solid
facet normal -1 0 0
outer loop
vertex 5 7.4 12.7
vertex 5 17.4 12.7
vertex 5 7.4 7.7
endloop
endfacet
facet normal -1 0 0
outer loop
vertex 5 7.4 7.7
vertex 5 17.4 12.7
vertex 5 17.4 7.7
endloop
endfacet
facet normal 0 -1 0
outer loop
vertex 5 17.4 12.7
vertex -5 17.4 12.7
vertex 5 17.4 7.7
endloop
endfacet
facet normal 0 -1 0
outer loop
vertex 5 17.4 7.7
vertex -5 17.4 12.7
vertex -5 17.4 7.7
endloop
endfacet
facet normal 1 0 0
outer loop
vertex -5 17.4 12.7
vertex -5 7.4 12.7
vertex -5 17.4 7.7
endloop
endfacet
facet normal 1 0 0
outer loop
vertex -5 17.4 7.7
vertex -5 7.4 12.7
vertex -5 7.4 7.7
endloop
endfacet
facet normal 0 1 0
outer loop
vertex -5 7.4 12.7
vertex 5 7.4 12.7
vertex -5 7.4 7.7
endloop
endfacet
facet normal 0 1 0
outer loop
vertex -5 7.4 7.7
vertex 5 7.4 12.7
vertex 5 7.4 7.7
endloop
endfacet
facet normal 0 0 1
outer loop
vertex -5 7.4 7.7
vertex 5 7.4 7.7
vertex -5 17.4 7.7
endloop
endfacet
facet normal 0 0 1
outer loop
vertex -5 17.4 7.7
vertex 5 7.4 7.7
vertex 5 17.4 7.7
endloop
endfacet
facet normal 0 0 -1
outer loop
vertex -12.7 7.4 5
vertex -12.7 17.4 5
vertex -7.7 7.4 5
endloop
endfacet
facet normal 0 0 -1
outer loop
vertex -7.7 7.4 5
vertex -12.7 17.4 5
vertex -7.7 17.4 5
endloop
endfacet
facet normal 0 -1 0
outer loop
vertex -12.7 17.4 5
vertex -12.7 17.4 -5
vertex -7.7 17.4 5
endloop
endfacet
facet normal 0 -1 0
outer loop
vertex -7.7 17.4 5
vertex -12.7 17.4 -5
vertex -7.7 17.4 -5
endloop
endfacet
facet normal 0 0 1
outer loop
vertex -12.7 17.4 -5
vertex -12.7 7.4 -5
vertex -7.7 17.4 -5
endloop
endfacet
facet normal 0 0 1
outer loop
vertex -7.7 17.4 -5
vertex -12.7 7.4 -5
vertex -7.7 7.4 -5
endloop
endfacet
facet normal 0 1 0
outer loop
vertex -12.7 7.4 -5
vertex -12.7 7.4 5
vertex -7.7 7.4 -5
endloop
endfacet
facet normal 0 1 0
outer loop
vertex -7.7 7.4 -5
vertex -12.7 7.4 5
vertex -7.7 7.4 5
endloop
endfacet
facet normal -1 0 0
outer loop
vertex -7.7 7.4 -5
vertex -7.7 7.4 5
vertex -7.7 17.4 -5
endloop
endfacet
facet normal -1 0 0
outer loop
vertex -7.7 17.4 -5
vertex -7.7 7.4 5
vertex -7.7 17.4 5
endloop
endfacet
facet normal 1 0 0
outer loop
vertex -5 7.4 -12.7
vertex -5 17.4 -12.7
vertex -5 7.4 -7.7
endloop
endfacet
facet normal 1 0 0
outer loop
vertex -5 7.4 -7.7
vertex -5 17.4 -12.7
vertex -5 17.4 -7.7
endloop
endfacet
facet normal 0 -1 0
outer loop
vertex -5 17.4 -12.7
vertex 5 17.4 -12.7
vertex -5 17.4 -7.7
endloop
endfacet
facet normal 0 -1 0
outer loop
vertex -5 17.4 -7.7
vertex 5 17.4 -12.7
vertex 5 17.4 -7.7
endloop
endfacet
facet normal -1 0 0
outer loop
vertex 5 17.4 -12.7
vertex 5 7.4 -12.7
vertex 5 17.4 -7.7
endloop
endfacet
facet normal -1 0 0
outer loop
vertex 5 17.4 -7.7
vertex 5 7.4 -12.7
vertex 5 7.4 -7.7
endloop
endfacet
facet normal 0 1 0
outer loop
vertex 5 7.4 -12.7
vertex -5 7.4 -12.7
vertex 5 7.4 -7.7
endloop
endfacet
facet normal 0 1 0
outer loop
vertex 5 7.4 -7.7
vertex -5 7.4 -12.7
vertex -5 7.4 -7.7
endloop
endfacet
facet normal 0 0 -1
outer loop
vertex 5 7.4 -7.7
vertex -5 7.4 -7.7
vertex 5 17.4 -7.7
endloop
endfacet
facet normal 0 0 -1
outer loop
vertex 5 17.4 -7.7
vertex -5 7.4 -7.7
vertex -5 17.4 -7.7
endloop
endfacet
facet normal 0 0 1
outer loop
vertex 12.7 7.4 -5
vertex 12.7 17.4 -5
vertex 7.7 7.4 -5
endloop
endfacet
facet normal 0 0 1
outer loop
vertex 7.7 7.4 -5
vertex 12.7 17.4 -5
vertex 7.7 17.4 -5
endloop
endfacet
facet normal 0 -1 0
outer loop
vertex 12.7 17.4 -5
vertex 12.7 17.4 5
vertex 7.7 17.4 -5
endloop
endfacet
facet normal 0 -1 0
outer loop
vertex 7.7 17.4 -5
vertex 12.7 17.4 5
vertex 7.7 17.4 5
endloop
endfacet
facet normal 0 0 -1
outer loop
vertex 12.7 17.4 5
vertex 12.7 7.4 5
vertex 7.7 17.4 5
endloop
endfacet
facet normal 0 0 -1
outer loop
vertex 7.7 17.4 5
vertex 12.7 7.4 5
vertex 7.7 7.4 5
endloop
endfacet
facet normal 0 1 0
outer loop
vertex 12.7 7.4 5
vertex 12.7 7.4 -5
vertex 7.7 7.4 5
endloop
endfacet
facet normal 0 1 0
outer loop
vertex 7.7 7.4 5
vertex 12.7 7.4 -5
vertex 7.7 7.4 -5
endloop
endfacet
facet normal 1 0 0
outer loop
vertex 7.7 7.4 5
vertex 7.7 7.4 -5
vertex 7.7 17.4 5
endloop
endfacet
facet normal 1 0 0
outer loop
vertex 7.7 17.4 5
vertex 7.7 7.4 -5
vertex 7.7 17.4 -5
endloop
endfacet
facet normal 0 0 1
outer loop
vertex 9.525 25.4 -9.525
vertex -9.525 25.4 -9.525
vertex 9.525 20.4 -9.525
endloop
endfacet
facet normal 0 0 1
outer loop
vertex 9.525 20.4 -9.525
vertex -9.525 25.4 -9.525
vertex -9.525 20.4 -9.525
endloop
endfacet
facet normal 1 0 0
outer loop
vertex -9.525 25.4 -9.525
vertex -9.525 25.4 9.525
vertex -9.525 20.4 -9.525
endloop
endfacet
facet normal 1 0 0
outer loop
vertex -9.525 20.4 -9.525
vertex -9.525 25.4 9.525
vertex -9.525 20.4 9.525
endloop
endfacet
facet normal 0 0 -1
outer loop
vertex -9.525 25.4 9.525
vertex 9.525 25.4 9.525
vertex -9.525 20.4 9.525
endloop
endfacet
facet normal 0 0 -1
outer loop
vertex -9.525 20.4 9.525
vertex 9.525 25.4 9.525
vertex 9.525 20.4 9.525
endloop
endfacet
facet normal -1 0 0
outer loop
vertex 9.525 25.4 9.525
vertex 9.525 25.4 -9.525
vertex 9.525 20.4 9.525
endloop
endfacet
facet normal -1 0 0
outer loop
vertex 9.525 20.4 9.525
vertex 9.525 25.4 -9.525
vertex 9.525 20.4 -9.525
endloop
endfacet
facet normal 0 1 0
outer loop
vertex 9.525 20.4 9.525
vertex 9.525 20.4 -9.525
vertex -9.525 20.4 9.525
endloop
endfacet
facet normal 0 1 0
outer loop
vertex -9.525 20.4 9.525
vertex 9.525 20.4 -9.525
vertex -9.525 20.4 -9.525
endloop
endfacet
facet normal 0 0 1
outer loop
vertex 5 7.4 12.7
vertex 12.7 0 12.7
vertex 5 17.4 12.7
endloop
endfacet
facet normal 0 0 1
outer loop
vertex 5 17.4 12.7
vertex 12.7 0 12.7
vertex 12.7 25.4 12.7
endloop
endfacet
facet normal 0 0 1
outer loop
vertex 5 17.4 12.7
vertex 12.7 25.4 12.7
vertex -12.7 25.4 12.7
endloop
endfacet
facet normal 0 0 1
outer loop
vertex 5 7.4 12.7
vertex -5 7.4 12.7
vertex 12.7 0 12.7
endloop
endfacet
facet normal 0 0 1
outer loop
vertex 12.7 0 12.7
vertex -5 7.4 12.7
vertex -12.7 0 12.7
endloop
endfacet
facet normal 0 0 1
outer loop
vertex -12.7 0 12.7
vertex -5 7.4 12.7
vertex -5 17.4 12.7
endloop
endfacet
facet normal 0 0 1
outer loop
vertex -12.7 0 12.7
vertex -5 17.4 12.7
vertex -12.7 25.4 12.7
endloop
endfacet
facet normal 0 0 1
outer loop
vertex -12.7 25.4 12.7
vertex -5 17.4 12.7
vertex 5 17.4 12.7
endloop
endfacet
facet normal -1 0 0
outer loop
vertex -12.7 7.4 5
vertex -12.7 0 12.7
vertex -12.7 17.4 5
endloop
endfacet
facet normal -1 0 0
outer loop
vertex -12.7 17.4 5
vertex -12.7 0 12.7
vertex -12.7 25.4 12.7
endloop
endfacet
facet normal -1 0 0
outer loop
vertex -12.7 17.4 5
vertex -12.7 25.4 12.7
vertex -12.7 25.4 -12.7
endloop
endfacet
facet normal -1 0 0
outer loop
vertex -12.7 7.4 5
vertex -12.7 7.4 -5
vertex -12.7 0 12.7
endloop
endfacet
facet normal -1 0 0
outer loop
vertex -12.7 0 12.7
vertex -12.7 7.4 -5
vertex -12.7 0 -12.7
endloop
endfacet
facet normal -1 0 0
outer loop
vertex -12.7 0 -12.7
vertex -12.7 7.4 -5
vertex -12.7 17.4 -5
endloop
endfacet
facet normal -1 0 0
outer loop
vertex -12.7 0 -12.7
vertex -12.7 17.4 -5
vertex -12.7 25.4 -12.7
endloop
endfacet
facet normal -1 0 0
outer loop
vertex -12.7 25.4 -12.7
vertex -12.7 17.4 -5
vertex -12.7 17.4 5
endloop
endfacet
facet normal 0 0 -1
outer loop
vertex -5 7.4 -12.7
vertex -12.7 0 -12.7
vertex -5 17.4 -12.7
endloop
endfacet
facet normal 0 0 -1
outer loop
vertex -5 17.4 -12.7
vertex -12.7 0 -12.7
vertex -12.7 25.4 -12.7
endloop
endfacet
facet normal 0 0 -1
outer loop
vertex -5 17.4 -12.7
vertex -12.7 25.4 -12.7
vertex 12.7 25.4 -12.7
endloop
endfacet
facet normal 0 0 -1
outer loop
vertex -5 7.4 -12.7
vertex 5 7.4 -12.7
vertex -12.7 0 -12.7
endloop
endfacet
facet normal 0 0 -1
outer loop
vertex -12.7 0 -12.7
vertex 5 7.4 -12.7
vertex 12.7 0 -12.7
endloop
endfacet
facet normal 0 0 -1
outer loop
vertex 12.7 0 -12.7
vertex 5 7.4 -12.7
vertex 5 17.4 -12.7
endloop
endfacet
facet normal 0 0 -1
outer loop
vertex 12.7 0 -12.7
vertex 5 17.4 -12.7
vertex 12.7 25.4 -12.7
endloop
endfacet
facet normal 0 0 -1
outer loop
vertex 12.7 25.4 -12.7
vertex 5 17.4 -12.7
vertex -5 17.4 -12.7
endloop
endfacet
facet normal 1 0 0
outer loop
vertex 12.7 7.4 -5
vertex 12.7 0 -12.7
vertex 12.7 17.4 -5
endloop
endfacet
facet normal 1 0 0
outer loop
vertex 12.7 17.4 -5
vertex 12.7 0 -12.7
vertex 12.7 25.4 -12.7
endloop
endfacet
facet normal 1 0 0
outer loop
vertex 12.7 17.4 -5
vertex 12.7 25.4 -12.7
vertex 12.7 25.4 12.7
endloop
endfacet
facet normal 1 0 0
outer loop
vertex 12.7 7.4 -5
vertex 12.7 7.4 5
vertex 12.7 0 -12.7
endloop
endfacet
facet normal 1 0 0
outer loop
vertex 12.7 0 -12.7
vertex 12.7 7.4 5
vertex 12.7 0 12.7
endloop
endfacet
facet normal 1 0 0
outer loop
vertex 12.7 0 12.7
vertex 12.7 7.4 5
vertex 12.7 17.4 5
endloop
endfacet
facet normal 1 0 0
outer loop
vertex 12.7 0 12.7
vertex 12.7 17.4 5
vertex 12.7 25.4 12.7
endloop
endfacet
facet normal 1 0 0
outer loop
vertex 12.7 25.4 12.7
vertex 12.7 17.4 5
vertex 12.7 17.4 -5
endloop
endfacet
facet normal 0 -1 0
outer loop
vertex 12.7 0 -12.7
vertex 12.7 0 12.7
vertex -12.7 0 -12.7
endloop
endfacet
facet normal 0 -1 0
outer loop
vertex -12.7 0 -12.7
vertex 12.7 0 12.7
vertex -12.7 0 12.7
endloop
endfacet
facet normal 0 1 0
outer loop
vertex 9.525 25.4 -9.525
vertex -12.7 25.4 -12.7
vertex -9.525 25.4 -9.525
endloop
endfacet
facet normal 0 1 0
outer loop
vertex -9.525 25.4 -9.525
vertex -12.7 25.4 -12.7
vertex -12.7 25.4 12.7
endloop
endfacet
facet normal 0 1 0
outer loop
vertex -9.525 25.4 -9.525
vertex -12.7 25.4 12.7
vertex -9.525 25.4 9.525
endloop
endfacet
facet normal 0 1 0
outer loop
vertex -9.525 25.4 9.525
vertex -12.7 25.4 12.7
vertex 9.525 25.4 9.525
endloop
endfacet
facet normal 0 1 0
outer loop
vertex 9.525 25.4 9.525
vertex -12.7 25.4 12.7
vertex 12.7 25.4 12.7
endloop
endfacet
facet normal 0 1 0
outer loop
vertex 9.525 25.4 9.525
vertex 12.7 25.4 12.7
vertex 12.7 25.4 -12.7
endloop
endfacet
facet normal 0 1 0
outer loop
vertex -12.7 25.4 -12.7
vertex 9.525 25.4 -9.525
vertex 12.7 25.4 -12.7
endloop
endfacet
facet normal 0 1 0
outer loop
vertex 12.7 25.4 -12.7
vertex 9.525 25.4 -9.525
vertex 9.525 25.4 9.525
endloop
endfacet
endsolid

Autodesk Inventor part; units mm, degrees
ref_plane "YZ Plane" through (0, 0, 0) normal (1, 0, 0) x (0, 1, 0)
ref_plane "XZ Plane" through (0, 0, 0) normal (0, 1, 0) x (-1, 0, 0)
ref_plane "XY Plane" through (0, 0, 0) normal (0, 0, 1) x (1, 0, 0)
sketch "Sketch1" plane through (0, 0, 0) normal (0, 1, 0) x (-1, 0, 0)
  line L0 (-12.7, -12.7) -> (-12.7, 12.7)
  line L1 (-12.7, 12.7) -> (12.7, 12.7)
  line L2 (12.7, 12.7) -> (12.7, -12.7)
  line L3 (12.7, -12.7) -> (-12.7, -12.7)
  point P0 (0, 0)
  point P1 (0, 0)
  dimension "d0" = 25.4
extrude "Extrusion1" add sketch "Sketch1" along normal blind 25.4
sketch "Sketch2" plane through (0, 25.4, 0) normal (0, 1, 0) x (1, 0, 0)
  line L0 (9.525, 9.525) -> (9.525, -9.525)
  line L1 (9.525, -9.525) -> (-9.525, -9.525)
  line L2 (-9.525, -9.525) -> (-9.525, 9.525)
  line L3 (-9.525, 9.525) -> (9.525, 9.525)
  point P0 (0, 0)
  point P1 (0, 0)
  dimension "d3" = 19.05
extrude "Extrusion2" cut sketch "Sketch2" against normal blind 5
sketch "Sketch3" plane through (12.7, 0, 12.7) normal (1, 0, 0) x (0, 0, -1)
  line L0 (22.225, 20.4) -> (3.175, 20.4) projected
  line L1 (17.7, 7.4) -> (7.7, 7.4)
  line L2 (7.7, 7.4) -> (7.7, 17.4)
  line L3 (7.7, 17.4) -> (17.7, 17.4)
  line L4 (17.7, 17.4) -> (17.7, 7.4)
  point P0 (12.7, 0)
  point P1 (12.7, 12.4)
  dimension "d6" = 10
extrude "Extrusion3" cut sketch "Sketch3" against normal blind 5
pattern_circular "Circular Pattern1" count 4 over 360 about axis through (0, -10, 0) along (0, 1, 0) of "Extrusion3"
properties part number "frame_nexus_2"
